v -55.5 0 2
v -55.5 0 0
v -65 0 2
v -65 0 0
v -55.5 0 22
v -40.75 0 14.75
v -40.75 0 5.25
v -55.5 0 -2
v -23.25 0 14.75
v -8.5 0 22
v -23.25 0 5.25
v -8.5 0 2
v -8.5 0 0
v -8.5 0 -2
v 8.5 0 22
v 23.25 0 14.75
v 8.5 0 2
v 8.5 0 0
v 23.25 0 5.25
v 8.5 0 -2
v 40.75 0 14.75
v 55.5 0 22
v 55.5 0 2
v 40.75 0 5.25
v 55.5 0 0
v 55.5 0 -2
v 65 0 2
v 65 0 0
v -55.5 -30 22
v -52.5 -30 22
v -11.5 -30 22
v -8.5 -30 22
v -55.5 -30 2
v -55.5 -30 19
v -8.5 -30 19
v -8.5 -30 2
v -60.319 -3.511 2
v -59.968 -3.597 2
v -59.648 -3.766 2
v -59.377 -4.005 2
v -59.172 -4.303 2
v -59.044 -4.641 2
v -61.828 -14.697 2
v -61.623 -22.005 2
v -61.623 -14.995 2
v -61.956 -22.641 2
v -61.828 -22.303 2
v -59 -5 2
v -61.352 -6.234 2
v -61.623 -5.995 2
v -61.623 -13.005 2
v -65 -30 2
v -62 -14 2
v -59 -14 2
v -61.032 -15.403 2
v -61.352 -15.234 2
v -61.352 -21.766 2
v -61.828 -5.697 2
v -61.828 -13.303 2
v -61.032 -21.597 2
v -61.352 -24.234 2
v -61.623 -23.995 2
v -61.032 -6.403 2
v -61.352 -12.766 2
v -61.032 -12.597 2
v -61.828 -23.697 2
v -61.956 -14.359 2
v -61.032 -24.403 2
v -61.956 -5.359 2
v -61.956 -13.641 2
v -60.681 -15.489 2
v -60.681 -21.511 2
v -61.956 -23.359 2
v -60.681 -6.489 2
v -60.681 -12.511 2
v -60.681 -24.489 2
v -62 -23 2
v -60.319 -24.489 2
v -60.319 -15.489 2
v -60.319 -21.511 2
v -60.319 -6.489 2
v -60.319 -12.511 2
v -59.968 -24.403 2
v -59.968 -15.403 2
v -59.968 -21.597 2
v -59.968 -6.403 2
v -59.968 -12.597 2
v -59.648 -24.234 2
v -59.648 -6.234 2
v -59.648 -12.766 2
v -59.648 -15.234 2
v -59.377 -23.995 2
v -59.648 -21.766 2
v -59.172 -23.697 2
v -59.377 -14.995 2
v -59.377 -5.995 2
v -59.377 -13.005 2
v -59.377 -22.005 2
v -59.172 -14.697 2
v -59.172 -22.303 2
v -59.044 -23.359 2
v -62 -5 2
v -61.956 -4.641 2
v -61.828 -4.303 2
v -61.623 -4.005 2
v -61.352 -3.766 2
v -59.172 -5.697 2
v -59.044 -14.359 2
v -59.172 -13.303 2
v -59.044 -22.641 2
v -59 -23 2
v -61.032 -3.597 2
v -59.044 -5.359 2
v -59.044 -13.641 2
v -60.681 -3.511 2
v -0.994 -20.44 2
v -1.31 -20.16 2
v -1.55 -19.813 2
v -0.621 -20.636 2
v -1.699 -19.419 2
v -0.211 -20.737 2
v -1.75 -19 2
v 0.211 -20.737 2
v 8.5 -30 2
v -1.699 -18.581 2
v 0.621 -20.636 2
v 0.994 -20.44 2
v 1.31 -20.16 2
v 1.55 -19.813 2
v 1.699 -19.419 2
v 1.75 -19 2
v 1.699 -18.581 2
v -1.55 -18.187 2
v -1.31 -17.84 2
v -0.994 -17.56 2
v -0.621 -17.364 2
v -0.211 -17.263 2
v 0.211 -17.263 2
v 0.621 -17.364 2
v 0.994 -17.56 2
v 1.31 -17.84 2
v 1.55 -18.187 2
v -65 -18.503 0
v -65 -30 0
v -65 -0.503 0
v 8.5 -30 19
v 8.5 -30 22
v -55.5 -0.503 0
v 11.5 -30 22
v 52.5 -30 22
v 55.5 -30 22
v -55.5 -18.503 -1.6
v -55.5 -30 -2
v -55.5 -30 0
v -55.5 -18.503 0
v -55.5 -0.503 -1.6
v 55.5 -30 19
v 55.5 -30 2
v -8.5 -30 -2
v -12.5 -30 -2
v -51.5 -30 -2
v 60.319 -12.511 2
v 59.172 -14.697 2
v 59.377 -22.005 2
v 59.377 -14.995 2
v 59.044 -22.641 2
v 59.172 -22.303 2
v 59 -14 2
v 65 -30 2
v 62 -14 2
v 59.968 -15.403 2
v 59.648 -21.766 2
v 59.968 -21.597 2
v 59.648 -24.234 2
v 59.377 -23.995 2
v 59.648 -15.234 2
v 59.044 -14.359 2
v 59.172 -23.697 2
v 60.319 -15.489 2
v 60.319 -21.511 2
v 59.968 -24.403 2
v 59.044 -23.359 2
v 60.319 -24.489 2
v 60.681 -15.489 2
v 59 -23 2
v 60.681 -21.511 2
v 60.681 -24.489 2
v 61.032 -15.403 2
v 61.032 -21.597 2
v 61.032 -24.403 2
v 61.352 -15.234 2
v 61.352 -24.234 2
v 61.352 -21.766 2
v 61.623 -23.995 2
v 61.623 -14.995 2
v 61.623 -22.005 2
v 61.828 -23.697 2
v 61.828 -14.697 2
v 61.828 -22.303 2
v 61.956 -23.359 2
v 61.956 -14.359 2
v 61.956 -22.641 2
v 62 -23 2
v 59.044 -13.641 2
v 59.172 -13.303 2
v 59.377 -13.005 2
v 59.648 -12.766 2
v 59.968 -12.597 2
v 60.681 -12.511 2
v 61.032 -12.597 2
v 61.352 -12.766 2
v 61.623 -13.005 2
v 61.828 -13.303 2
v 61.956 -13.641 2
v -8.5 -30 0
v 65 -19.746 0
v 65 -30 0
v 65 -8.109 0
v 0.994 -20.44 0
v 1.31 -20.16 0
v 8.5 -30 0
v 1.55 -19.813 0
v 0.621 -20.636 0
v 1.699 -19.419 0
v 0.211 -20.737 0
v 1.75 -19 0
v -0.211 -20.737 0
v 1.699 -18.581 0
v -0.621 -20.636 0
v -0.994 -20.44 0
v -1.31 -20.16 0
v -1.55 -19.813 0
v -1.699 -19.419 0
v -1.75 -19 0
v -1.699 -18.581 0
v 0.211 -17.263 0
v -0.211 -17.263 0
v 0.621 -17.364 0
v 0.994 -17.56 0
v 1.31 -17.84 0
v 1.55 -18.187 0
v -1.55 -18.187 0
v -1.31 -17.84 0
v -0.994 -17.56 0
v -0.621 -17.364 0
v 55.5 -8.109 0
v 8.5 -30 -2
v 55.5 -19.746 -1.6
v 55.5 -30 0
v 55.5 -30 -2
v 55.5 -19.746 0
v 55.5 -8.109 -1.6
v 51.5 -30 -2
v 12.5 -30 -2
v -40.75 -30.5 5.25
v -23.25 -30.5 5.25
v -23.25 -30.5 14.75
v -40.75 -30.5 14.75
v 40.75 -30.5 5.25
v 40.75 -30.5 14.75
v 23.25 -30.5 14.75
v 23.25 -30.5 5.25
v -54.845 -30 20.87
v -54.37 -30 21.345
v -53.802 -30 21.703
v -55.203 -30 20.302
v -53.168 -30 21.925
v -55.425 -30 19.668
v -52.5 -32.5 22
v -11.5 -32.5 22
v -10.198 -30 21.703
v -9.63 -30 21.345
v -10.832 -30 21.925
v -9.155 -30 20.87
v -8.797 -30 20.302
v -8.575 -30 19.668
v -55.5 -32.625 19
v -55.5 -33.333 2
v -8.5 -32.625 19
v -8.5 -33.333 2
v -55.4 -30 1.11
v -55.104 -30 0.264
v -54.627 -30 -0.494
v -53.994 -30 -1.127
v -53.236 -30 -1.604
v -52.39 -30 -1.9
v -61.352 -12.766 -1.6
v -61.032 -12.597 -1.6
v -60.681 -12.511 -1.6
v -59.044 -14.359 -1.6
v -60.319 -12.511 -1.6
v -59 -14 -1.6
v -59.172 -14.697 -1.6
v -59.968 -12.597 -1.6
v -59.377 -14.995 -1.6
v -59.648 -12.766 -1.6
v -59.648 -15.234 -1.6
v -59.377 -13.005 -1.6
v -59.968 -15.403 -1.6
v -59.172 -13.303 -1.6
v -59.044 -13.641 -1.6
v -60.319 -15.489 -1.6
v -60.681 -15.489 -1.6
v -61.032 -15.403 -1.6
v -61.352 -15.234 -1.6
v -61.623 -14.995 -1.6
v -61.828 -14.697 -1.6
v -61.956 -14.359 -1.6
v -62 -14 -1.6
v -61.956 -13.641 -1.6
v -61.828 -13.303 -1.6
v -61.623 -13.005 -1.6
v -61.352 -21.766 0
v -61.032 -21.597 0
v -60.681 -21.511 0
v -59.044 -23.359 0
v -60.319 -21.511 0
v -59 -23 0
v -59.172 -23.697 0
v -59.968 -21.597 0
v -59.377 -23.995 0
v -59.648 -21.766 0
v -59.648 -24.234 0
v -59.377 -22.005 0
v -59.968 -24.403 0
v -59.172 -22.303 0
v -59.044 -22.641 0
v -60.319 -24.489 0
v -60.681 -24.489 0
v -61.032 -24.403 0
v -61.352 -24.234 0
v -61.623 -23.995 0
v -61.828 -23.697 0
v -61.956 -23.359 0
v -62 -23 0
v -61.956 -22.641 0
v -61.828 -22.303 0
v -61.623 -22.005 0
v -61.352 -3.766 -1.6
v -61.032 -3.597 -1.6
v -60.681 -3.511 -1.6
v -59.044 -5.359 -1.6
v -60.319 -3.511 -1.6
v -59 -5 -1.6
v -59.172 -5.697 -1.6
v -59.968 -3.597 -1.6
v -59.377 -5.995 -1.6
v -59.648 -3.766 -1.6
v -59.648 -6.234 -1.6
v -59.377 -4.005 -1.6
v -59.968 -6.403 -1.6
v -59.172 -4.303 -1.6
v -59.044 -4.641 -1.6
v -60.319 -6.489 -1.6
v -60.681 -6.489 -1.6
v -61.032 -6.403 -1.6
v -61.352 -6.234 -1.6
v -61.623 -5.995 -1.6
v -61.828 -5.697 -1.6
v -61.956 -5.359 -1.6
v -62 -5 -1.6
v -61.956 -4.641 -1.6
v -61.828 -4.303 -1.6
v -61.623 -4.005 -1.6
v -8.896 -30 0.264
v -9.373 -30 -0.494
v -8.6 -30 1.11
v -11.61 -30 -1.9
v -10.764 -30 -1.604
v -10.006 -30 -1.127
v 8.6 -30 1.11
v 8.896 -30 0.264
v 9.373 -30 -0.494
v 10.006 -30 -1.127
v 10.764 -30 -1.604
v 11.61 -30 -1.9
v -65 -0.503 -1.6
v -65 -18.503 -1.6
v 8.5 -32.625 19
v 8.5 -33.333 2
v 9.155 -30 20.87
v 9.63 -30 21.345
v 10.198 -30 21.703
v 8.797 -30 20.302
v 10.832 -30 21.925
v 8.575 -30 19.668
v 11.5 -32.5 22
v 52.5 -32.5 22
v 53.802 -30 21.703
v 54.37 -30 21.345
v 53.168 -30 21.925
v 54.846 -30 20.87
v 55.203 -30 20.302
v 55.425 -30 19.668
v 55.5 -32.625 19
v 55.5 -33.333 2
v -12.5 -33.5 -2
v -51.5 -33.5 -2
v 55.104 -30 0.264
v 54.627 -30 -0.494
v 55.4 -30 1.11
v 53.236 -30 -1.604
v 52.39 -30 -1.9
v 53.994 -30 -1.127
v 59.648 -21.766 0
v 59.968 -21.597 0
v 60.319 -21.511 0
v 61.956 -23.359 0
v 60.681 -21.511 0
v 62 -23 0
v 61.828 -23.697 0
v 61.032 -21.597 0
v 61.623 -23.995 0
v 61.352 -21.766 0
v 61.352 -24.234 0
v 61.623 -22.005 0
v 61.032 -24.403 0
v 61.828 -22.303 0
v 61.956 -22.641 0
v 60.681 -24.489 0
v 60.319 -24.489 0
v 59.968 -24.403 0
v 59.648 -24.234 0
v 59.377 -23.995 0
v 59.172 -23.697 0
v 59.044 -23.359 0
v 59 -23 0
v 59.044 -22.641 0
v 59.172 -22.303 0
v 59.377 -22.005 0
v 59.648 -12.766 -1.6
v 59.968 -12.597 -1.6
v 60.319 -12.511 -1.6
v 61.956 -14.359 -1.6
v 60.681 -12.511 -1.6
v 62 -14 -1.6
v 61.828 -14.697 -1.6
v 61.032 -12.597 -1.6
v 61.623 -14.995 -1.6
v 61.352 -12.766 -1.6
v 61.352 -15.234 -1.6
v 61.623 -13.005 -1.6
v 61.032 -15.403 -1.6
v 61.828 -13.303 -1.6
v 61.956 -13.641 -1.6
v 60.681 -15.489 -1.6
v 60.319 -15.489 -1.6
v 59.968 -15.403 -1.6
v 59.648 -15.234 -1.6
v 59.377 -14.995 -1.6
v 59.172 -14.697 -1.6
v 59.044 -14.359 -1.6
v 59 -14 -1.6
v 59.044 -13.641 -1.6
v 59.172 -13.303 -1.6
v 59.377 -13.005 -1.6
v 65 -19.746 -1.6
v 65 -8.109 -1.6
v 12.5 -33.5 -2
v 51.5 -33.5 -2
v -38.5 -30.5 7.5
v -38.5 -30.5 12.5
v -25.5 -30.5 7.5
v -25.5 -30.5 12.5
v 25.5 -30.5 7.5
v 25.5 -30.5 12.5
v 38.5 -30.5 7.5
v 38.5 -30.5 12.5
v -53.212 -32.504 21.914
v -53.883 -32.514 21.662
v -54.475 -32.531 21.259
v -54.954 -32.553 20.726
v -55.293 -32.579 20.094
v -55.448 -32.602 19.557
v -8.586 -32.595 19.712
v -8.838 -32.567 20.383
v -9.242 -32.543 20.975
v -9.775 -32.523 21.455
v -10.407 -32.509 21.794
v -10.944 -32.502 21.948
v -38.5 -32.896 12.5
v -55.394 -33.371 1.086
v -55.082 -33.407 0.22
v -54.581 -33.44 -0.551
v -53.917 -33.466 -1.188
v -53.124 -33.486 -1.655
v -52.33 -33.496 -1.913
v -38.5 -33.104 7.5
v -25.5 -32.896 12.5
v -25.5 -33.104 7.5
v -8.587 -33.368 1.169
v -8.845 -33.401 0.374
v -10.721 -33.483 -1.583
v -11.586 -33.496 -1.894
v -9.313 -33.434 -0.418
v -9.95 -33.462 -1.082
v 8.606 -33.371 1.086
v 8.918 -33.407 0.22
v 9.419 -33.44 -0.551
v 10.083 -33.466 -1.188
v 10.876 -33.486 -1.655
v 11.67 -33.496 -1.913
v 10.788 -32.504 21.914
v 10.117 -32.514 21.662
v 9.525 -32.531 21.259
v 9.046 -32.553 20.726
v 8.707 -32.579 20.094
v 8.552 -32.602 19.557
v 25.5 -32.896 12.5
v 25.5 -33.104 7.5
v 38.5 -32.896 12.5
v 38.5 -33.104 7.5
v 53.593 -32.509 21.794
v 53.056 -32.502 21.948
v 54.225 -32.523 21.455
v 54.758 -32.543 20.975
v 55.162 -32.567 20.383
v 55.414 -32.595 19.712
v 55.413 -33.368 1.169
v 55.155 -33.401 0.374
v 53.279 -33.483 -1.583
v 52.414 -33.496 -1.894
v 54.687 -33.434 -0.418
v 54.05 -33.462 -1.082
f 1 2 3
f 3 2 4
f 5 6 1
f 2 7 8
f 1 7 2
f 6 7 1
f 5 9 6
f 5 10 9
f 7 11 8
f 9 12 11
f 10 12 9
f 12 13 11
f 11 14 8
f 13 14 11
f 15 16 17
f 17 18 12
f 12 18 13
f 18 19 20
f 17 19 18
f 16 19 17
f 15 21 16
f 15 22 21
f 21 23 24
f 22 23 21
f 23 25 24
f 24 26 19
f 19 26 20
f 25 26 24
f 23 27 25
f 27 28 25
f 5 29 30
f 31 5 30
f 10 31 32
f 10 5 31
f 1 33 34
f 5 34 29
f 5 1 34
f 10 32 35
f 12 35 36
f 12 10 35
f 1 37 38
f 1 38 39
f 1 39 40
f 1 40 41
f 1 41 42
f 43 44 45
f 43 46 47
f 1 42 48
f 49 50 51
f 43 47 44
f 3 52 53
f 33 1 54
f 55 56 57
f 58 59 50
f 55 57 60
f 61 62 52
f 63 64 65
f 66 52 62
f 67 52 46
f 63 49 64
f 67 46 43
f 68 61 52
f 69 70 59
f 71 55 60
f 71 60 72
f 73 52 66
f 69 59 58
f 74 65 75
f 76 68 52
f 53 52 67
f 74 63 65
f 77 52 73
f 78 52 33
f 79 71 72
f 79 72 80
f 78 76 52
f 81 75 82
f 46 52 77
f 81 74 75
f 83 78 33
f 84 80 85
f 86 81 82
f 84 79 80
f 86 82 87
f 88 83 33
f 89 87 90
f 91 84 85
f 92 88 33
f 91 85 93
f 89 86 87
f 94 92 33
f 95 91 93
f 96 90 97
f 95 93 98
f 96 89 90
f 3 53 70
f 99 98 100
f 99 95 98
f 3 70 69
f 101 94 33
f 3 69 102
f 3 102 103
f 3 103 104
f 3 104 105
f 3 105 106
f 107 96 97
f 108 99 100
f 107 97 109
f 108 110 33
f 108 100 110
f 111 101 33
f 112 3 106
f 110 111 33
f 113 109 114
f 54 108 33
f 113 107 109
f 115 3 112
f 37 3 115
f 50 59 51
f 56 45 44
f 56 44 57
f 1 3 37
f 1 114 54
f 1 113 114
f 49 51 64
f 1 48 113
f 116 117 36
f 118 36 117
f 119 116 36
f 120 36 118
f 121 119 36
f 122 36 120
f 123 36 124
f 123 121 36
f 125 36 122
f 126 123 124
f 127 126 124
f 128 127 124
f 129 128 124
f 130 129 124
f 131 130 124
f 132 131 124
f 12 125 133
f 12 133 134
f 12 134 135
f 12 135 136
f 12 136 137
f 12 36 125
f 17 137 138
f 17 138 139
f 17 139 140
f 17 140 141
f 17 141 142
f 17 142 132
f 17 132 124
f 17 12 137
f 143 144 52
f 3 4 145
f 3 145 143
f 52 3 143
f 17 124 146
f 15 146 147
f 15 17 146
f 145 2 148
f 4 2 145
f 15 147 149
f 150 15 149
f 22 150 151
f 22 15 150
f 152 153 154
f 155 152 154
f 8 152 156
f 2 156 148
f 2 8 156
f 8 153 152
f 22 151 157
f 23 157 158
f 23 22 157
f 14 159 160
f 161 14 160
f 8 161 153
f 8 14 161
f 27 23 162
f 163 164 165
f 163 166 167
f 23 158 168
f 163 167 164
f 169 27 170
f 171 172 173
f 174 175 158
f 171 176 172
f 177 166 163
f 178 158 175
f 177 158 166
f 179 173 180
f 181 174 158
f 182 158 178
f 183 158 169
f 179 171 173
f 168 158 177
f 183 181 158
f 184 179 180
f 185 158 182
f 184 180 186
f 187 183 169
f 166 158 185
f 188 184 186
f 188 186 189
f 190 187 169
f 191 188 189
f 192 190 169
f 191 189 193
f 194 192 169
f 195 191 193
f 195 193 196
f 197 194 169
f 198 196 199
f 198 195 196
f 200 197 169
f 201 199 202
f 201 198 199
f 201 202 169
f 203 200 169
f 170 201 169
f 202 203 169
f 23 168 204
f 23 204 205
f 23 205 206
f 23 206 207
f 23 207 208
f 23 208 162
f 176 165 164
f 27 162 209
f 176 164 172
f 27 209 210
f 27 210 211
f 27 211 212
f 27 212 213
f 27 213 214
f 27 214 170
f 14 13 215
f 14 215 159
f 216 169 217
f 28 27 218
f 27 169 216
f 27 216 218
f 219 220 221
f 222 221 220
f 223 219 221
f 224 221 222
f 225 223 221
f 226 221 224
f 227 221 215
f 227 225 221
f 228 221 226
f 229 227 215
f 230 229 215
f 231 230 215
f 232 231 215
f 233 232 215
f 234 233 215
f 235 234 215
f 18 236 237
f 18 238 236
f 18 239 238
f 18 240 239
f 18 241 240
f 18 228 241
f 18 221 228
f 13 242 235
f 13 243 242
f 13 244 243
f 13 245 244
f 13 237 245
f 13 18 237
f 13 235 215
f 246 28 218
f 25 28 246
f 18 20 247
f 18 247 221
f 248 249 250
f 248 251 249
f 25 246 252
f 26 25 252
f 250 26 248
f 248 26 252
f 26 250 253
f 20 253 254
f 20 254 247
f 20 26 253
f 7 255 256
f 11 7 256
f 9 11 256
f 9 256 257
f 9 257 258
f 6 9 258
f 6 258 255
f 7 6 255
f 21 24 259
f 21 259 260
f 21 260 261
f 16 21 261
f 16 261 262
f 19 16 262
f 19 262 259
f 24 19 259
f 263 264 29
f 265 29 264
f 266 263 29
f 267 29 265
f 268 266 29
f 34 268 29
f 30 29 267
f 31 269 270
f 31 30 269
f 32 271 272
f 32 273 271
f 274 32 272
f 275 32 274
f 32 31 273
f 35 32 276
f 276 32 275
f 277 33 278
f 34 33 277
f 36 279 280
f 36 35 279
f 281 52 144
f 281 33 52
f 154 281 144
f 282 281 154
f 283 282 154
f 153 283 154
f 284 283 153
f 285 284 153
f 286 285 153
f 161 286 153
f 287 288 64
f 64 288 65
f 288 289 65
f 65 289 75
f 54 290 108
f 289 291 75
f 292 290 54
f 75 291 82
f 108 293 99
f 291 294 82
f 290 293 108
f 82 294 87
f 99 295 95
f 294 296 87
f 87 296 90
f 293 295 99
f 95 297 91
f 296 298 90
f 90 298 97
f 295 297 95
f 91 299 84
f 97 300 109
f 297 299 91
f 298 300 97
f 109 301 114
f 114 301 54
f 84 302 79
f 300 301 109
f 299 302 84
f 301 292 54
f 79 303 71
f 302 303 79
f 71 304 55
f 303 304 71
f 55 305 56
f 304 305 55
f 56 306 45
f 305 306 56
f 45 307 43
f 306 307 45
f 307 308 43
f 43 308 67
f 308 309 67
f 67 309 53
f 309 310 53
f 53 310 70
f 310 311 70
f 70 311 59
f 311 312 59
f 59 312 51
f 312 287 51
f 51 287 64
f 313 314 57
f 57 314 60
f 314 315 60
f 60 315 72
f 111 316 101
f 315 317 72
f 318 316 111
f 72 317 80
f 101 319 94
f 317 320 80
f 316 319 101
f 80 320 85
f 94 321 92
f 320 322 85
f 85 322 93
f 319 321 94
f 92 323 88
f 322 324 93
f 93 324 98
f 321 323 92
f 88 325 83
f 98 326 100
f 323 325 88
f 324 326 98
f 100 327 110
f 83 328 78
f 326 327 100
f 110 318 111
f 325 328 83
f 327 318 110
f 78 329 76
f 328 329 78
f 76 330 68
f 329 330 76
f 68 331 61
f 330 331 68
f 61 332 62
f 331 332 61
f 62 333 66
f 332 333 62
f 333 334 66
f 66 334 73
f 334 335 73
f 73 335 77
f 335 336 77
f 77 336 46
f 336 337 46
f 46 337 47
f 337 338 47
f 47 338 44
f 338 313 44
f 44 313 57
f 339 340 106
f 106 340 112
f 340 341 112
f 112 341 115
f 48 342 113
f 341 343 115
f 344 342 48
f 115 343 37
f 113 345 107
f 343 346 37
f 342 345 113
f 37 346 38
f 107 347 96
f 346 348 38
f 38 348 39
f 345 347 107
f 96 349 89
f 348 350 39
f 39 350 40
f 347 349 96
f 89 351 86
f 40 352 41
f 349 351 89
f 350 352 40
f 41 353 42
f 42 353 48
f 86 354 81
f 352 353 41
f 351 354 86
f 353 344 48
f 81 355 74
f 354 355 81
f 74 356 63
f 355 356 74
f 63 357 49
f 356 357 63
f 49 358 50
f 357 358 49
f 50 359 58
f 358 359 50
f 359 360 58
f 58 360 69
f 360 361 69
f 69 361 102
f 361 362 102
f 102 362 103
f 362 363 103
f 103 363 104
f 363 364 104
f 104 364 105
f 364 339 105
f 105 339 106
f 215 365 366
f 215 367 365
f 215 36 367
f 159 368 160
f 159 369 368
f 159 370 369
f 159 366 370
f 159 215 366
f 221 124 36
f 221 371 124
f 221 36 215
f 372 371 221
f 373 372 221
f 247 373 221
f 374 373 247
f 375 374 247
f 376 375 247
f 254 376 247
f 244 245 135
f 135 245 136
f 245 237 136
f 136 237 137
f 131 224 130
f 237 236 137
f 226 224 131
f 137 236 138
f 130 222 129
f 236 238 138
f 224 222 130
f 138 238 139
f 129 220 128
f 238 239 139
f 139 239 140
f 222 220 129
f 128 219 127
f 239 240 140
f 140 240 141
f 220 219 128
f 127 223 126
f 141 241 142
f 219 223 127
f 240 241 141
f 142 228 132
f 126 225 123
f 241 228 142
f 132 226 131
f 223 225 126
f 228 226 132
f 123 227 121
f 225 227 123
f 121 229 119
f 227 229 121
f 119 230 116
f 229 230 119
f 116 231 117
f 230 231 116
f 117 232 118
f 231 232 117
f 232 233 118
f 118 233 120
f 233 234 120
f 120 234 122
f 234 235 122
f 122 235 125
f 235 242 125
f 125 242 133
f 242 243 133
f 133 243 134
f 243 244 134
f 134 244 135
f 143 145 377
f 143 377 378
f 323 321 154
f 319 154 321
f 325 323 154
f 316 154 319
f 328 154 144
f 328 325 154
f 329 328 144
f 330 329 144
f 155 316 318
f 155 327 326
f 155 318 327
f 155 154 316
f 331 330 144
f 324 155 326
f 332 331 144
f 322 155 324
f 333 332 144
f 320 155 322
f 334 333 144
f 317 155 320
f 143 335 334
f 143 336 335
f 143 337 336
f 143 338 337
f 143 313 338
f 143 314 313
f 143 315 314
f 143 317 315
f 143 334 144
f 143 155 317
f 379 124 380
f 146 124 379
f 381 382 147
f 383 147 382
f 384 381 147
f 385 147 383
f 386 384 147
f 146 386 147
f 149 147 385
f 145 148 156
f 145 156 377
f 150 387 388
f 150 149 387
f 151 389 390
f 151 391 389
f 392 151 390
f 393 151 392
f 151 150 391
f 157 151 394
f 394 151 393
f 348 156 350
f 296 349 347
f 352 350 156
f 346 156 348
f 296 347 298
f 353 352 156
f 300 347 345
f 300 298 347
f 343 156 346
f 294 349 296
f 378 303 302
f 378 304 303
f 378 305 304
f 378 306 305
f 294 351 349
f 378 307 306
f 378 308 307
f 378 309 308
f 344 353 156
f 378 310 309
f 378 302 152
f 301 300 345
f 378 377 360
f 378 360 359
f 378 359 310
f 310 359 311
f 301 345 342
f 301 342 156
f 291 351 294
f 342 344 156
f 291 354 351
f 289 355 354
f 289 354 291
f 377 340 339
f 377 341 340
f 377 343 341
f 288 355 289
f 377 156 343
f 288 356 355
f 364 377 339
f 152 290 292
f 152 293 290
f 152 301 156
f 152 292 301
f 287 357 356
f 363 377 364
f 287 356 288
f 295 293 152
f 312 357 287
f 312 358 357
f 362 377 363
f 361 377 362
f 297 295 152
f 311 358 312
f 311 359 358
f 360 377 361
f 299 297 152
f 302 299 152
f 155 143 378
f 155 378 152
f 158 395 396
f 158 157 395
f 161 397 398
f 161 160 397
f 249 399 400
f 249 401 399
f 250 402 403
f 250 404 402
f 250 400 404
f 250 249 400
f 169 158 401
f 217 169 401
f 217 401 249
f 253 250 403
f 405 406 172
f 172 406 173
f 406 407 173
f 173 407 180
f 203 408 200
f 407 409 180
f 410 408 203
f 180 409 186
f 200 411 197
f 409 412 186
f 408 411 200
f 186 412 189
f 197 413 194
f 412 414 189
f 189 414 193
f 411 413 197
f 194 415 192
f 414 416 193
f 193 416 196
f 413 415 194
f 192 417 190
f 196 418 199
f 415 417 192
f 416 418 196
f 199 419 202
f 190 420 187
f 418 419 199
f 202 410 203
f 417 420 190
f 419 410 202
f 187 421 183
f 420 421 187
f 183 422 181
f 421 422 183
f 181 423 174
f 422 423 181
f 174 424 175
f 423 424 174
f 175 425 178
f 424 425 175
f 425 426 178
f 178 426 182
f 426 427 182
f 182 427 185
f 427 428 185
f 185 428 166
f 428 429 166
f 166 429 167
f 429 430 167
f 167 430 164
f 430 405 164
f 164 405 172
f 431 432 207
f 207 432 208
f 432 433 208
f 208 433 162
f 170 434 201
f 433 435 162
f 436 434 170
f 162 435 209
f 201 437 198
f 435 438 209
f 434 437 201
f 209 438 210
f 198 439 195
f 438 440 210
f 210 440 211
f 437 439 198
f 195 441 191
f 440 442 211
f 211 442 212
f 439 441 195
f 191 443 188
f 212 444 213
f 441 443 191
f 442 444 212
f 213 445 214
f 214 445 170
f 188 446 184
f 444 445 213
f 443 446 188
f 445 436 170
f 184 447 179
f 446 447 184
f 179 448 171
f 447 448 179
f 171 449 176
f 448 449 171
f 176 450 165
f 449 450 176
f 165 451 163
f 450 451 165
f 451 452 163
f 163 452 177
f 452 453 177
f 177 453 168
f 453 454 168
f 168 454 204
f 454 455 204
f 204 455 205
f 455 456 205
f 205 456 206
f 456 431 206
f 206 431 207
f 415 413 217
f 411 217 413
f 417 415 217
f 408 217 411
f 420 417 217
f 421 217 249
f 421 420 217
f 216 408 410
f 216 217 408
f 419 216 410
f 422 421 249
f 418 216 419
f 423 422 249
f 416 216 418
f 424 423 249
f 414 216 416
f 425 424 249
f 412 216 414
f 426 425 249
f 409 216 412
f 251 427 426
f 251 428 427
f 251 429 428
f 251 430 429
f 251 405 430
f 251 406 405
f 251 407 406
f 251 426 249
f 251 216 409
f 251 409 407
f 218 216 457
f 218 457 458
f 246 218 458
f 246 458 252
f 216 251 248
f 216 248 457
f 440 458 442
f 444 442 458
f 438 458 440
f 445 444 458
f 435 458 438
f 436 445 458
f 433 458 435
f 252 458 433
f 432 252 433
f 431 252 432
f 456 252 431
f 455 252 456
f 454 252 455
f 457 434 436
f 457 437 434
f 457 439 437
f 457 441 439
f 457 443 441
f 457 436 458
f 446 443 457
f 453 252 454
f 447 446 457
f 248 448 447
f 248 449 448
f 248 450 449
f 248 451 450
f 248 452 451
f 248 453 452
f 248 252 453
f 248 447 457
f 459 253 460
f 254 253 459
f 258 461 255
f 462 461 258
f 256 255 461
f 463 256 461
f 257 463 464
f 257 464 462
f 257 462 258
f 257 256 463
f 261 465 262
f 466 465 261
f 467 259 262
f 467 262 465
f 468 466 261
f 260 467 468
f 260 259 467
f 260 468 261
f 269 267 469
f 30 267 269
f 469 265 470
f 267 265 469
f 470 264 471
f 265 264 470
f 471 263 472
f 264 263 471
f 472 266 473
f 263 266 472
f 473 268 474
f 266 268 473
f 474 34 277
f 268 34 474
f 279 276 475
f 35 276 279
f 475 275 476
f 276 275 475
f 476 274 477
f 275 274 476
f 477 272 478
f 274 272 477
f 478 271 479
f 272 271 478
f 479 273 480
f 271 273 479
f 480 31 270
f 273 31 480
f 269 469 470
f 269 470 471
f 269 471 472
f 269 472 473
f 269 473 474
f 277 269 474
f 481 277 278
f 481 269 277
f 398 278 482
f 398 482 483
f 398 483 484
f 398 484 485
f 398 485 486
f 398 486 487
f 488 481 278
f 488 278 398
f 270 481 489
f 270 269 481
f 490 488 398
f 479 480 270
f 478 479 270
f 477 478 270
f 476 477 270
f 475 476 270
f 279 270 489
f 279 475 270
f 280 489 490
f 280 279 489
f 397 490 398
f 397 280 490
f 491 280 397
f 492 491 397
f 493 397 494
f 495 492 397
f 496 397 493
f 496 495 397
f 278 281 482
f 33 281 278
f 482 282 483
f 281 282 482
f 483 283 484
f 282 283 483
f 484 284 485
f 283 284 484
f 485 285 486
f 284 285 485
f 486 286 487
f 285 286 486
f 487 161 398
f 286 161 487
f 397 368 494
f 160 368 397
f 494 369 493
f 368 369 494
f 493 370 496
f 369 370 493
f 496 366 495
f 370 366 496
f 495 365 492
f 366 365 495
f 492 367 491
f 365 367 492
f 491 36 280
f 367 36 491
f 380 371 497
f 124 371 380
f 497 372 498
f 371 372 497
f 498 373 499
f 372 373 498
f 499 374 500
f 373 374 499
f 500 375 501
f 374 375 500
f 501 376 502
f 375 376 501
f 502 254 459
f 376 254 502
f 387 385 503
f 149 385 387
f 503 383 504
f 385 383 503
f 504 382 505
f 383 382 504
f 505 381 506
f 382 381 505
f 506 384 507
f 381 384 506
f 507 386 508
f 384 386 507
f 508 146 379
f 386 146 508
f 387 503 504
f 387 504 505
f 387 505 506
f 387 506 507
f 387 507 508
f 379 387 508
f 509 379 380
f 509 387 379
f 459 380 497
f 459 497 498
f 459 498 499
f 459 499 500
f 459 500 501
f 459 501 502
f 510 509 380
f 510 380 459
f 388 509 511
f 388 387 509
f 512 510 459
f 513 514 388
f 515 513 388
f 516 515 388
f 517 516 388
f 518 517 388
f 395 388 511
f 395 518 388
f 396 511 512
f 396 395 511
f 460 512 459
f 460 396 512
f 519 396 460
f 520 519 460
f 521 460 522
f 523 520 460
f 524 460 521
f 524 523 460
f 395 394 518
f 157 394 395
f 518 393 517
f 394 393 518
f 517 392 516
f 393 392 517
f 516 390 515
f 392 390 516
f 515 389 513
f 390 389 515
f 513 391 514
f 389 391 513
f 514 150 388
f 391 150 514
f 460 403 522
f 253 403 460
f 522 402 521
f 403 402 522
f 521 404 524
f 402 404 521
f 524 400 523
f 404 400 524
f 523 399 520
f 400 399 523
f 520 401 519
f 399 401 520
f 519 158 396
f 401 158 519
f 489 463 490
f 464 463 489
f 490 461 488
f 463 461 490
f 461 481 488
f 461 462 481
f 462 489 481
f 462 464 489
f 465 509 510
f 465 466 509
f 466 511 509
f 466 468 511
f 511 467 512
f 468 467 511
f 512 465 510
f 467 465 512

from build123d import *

# Parameters (mm, degrees)
PAD_DEPTH            = 30
PAD001_DEPTH         = 3.5
SKETCH002_W          = 13
SKETCH002_H          = 5
POCKET_DEPTH         = 33.501
SKETCH003_W          = 17.5
SKETCH003_H          = 9.5
POCKET001_DEPTH      = 30.5
POCKET002_DEPTH      = 120.501
POCKET002_DEPTH_BACK = -9.501
SKETCH008_W          = 9.5
SKETCH008_H          = 18
SKETCH008_H_2        = 11.637311
PAD002_DEPTH         = 1.6
SKETCH009_R          = 1.75
SKETCH009_R_2        = 1.5
POCKET003_DEPTH      = 22.001
POCKET003_DEPTH_BACK = -2.001


with BuildPart() as part:
    # Sketch → Pad (new body)
    with BuildSketch(Plane.XZ):
        Polygon((-55.5, 22), (-8.5, 22), (-8.5, 2), (8.5, 2), (8.5, 22), (55.5, 22), (55.5, 2), (65, 2), (65, 0), (55.5, 0), (55.5, -2), (8.5, -2), (8.5, 0), (-8.5, 0), (-8.5, -2), (-55.5, -2), (-55.5, 0), (-65, 0), (-65, 2), (-55.5, 2), align=None)
    extrude(amount=PAD_DEPTH)

    # Sketch001 → Pad001 (new body)
    with BuildSketch(Plane.XZ.offset(30)):
        with BuildLine():
            ThreePointArc((-52.5, 22), (-54.62132, 21.12132), (-55.5, 19))
            Line((-55.5, 19), (-55.5, 2))
            ThreePointArc((-55.5, 2), (-54.328434, -0.828421), (-51.500018, -2))
            Line((-51.500018, -2), (-12.499975, -2))
            ThreePointArc((-12.499975, -2), (-9.671566, -0.82842), (-8.5, 1.999996))
            Line((-8.5, 19.000001), (-8.5, 1.999996))
            ThreePointArc((-8.5, 19.000001), (-9.37868, 21.121321), (-11.5, 22))
            Line((-52.5, 22), (-11.5, 22))
        make_face()
        with BuildLine():
            ThreePointArc((11.5, 22), (9.37868, 21.12132), (8.5, 19))
            Line((8.5, 2), (8.5, 19))
            ThreePointArc((8.5, 2), (9.671573, -0.828427), (12.5, -2))
            Line((51.5, -2), (12.5, -2))
            ThreePointArc((51.5, -2), (54.328427, -0.828427), (55.5, 2))
            Line((55.5, 18.999976), (55.5, 2))
            ThreePointArc((55.5, 18.999976), (54.621329, 21.121312), (52.5, 22))
            Line((11.5, 22), (52.5, 22))
        make_face()
    extrude(amount=PAD001_DEPTH)

    # Sketch002 → Pocket (cut, through all)
    with BuildSketch(Plane(origin=(0, 0, 0), x_dir=(1, 0, 0), z_dir=(0, 1, 0))):
        with Locations((-32, -10)):
            Rectangle(SKETCH002_W, SKETCH002_H)
        with Locations((32, -10)):
            Rectangle(SKETCH002_W, SKETCH002_H)
    extrude(amount=-POCKET_DEPTH, mode=Mode.SUBTRACT)

    # Sketch003 → Pocket001 (cut)
    with BuildSketch(Plane(origin=(0, 0, 0), x_dir=(1, 0, 0), z_dir=(0, 1, 0))):
        with Locations((-32, -10)):
            Rectangle(SKETCH003_W, SKETCH003_H)
        with Locations((32, -10)):
            Rectangle(SKETCH003_W, SKETCH003_H)
    extrude(amount=-POCKET001_DEPTH, mode=Mode.SUBTRACT)

    # Sketch007 → Pocket002 (cut, two sides)
    with BuildSketch(Plane(origin=(55.5, 0, 0), x_dir=(0, 0, 1), z_dir=(1, 0, 0))) as pocket002_sk:
        Polygon((-2, 33.5), (22.001, 33.5), (22.001, 32.5), align=None)
    extrude(amount=-POCKET002_DEPTH, mode=Mode.SUBTRACT)
    extrude(pocket002_sk.sketch, amount=-POCKET002_DEPTH_BACK, mode=Mode.SUBTRACT)

    # Sketch008 → Pad002 (new body)
    with BuildSketch(Plane(origin=(0, 0, 0), x_dir=(1, 0, 0), z_dir=(0, 0, -1))):
        with Locations((-60.25, 9.50335)):
            Rectangle(SKETCH008_W, SKETCH008_H)
        with Locations((60.25, 13.927338)):
            Rectangle(SKETCH008_W, SKETCH008_H_2)
    extrude(amount=PAD002_DEPTH)

    # Sketch009 → Pocket003 (cut, two sides)
    with BuildSketch(Plane(origin=(0, 0, 0), x_dir=(1, 0, 0), z_dir=(0, 0, -1))) as pocket003_sk:
        with Locations((0, 19)):
            Circle(SKETCH009_R)
        with Locations((-60.5, 23)):
            Circle(SKETCH009_R_2)
        with Locations((-60.5, 14)):
            Circle(SKETCH009_R_2)
        with Locations((60.5, 23)):
            Circle(SKETCH009_R_2)
        with Locations((60.5, 14)):
            Circle(SKETCH009_R_2)
        with Locations((-60.5, 5)):
            Circle(SKETCH009_R_2)
    extrude(amount=-POCKET003_DEPTH, mode=Mode.SUBTRACT)
    extrude(pocket003_sk.sketch, amount=-POCKET003_DEPTH_BACK, mode=Mode.SUBTRACT)


solid = part.part
